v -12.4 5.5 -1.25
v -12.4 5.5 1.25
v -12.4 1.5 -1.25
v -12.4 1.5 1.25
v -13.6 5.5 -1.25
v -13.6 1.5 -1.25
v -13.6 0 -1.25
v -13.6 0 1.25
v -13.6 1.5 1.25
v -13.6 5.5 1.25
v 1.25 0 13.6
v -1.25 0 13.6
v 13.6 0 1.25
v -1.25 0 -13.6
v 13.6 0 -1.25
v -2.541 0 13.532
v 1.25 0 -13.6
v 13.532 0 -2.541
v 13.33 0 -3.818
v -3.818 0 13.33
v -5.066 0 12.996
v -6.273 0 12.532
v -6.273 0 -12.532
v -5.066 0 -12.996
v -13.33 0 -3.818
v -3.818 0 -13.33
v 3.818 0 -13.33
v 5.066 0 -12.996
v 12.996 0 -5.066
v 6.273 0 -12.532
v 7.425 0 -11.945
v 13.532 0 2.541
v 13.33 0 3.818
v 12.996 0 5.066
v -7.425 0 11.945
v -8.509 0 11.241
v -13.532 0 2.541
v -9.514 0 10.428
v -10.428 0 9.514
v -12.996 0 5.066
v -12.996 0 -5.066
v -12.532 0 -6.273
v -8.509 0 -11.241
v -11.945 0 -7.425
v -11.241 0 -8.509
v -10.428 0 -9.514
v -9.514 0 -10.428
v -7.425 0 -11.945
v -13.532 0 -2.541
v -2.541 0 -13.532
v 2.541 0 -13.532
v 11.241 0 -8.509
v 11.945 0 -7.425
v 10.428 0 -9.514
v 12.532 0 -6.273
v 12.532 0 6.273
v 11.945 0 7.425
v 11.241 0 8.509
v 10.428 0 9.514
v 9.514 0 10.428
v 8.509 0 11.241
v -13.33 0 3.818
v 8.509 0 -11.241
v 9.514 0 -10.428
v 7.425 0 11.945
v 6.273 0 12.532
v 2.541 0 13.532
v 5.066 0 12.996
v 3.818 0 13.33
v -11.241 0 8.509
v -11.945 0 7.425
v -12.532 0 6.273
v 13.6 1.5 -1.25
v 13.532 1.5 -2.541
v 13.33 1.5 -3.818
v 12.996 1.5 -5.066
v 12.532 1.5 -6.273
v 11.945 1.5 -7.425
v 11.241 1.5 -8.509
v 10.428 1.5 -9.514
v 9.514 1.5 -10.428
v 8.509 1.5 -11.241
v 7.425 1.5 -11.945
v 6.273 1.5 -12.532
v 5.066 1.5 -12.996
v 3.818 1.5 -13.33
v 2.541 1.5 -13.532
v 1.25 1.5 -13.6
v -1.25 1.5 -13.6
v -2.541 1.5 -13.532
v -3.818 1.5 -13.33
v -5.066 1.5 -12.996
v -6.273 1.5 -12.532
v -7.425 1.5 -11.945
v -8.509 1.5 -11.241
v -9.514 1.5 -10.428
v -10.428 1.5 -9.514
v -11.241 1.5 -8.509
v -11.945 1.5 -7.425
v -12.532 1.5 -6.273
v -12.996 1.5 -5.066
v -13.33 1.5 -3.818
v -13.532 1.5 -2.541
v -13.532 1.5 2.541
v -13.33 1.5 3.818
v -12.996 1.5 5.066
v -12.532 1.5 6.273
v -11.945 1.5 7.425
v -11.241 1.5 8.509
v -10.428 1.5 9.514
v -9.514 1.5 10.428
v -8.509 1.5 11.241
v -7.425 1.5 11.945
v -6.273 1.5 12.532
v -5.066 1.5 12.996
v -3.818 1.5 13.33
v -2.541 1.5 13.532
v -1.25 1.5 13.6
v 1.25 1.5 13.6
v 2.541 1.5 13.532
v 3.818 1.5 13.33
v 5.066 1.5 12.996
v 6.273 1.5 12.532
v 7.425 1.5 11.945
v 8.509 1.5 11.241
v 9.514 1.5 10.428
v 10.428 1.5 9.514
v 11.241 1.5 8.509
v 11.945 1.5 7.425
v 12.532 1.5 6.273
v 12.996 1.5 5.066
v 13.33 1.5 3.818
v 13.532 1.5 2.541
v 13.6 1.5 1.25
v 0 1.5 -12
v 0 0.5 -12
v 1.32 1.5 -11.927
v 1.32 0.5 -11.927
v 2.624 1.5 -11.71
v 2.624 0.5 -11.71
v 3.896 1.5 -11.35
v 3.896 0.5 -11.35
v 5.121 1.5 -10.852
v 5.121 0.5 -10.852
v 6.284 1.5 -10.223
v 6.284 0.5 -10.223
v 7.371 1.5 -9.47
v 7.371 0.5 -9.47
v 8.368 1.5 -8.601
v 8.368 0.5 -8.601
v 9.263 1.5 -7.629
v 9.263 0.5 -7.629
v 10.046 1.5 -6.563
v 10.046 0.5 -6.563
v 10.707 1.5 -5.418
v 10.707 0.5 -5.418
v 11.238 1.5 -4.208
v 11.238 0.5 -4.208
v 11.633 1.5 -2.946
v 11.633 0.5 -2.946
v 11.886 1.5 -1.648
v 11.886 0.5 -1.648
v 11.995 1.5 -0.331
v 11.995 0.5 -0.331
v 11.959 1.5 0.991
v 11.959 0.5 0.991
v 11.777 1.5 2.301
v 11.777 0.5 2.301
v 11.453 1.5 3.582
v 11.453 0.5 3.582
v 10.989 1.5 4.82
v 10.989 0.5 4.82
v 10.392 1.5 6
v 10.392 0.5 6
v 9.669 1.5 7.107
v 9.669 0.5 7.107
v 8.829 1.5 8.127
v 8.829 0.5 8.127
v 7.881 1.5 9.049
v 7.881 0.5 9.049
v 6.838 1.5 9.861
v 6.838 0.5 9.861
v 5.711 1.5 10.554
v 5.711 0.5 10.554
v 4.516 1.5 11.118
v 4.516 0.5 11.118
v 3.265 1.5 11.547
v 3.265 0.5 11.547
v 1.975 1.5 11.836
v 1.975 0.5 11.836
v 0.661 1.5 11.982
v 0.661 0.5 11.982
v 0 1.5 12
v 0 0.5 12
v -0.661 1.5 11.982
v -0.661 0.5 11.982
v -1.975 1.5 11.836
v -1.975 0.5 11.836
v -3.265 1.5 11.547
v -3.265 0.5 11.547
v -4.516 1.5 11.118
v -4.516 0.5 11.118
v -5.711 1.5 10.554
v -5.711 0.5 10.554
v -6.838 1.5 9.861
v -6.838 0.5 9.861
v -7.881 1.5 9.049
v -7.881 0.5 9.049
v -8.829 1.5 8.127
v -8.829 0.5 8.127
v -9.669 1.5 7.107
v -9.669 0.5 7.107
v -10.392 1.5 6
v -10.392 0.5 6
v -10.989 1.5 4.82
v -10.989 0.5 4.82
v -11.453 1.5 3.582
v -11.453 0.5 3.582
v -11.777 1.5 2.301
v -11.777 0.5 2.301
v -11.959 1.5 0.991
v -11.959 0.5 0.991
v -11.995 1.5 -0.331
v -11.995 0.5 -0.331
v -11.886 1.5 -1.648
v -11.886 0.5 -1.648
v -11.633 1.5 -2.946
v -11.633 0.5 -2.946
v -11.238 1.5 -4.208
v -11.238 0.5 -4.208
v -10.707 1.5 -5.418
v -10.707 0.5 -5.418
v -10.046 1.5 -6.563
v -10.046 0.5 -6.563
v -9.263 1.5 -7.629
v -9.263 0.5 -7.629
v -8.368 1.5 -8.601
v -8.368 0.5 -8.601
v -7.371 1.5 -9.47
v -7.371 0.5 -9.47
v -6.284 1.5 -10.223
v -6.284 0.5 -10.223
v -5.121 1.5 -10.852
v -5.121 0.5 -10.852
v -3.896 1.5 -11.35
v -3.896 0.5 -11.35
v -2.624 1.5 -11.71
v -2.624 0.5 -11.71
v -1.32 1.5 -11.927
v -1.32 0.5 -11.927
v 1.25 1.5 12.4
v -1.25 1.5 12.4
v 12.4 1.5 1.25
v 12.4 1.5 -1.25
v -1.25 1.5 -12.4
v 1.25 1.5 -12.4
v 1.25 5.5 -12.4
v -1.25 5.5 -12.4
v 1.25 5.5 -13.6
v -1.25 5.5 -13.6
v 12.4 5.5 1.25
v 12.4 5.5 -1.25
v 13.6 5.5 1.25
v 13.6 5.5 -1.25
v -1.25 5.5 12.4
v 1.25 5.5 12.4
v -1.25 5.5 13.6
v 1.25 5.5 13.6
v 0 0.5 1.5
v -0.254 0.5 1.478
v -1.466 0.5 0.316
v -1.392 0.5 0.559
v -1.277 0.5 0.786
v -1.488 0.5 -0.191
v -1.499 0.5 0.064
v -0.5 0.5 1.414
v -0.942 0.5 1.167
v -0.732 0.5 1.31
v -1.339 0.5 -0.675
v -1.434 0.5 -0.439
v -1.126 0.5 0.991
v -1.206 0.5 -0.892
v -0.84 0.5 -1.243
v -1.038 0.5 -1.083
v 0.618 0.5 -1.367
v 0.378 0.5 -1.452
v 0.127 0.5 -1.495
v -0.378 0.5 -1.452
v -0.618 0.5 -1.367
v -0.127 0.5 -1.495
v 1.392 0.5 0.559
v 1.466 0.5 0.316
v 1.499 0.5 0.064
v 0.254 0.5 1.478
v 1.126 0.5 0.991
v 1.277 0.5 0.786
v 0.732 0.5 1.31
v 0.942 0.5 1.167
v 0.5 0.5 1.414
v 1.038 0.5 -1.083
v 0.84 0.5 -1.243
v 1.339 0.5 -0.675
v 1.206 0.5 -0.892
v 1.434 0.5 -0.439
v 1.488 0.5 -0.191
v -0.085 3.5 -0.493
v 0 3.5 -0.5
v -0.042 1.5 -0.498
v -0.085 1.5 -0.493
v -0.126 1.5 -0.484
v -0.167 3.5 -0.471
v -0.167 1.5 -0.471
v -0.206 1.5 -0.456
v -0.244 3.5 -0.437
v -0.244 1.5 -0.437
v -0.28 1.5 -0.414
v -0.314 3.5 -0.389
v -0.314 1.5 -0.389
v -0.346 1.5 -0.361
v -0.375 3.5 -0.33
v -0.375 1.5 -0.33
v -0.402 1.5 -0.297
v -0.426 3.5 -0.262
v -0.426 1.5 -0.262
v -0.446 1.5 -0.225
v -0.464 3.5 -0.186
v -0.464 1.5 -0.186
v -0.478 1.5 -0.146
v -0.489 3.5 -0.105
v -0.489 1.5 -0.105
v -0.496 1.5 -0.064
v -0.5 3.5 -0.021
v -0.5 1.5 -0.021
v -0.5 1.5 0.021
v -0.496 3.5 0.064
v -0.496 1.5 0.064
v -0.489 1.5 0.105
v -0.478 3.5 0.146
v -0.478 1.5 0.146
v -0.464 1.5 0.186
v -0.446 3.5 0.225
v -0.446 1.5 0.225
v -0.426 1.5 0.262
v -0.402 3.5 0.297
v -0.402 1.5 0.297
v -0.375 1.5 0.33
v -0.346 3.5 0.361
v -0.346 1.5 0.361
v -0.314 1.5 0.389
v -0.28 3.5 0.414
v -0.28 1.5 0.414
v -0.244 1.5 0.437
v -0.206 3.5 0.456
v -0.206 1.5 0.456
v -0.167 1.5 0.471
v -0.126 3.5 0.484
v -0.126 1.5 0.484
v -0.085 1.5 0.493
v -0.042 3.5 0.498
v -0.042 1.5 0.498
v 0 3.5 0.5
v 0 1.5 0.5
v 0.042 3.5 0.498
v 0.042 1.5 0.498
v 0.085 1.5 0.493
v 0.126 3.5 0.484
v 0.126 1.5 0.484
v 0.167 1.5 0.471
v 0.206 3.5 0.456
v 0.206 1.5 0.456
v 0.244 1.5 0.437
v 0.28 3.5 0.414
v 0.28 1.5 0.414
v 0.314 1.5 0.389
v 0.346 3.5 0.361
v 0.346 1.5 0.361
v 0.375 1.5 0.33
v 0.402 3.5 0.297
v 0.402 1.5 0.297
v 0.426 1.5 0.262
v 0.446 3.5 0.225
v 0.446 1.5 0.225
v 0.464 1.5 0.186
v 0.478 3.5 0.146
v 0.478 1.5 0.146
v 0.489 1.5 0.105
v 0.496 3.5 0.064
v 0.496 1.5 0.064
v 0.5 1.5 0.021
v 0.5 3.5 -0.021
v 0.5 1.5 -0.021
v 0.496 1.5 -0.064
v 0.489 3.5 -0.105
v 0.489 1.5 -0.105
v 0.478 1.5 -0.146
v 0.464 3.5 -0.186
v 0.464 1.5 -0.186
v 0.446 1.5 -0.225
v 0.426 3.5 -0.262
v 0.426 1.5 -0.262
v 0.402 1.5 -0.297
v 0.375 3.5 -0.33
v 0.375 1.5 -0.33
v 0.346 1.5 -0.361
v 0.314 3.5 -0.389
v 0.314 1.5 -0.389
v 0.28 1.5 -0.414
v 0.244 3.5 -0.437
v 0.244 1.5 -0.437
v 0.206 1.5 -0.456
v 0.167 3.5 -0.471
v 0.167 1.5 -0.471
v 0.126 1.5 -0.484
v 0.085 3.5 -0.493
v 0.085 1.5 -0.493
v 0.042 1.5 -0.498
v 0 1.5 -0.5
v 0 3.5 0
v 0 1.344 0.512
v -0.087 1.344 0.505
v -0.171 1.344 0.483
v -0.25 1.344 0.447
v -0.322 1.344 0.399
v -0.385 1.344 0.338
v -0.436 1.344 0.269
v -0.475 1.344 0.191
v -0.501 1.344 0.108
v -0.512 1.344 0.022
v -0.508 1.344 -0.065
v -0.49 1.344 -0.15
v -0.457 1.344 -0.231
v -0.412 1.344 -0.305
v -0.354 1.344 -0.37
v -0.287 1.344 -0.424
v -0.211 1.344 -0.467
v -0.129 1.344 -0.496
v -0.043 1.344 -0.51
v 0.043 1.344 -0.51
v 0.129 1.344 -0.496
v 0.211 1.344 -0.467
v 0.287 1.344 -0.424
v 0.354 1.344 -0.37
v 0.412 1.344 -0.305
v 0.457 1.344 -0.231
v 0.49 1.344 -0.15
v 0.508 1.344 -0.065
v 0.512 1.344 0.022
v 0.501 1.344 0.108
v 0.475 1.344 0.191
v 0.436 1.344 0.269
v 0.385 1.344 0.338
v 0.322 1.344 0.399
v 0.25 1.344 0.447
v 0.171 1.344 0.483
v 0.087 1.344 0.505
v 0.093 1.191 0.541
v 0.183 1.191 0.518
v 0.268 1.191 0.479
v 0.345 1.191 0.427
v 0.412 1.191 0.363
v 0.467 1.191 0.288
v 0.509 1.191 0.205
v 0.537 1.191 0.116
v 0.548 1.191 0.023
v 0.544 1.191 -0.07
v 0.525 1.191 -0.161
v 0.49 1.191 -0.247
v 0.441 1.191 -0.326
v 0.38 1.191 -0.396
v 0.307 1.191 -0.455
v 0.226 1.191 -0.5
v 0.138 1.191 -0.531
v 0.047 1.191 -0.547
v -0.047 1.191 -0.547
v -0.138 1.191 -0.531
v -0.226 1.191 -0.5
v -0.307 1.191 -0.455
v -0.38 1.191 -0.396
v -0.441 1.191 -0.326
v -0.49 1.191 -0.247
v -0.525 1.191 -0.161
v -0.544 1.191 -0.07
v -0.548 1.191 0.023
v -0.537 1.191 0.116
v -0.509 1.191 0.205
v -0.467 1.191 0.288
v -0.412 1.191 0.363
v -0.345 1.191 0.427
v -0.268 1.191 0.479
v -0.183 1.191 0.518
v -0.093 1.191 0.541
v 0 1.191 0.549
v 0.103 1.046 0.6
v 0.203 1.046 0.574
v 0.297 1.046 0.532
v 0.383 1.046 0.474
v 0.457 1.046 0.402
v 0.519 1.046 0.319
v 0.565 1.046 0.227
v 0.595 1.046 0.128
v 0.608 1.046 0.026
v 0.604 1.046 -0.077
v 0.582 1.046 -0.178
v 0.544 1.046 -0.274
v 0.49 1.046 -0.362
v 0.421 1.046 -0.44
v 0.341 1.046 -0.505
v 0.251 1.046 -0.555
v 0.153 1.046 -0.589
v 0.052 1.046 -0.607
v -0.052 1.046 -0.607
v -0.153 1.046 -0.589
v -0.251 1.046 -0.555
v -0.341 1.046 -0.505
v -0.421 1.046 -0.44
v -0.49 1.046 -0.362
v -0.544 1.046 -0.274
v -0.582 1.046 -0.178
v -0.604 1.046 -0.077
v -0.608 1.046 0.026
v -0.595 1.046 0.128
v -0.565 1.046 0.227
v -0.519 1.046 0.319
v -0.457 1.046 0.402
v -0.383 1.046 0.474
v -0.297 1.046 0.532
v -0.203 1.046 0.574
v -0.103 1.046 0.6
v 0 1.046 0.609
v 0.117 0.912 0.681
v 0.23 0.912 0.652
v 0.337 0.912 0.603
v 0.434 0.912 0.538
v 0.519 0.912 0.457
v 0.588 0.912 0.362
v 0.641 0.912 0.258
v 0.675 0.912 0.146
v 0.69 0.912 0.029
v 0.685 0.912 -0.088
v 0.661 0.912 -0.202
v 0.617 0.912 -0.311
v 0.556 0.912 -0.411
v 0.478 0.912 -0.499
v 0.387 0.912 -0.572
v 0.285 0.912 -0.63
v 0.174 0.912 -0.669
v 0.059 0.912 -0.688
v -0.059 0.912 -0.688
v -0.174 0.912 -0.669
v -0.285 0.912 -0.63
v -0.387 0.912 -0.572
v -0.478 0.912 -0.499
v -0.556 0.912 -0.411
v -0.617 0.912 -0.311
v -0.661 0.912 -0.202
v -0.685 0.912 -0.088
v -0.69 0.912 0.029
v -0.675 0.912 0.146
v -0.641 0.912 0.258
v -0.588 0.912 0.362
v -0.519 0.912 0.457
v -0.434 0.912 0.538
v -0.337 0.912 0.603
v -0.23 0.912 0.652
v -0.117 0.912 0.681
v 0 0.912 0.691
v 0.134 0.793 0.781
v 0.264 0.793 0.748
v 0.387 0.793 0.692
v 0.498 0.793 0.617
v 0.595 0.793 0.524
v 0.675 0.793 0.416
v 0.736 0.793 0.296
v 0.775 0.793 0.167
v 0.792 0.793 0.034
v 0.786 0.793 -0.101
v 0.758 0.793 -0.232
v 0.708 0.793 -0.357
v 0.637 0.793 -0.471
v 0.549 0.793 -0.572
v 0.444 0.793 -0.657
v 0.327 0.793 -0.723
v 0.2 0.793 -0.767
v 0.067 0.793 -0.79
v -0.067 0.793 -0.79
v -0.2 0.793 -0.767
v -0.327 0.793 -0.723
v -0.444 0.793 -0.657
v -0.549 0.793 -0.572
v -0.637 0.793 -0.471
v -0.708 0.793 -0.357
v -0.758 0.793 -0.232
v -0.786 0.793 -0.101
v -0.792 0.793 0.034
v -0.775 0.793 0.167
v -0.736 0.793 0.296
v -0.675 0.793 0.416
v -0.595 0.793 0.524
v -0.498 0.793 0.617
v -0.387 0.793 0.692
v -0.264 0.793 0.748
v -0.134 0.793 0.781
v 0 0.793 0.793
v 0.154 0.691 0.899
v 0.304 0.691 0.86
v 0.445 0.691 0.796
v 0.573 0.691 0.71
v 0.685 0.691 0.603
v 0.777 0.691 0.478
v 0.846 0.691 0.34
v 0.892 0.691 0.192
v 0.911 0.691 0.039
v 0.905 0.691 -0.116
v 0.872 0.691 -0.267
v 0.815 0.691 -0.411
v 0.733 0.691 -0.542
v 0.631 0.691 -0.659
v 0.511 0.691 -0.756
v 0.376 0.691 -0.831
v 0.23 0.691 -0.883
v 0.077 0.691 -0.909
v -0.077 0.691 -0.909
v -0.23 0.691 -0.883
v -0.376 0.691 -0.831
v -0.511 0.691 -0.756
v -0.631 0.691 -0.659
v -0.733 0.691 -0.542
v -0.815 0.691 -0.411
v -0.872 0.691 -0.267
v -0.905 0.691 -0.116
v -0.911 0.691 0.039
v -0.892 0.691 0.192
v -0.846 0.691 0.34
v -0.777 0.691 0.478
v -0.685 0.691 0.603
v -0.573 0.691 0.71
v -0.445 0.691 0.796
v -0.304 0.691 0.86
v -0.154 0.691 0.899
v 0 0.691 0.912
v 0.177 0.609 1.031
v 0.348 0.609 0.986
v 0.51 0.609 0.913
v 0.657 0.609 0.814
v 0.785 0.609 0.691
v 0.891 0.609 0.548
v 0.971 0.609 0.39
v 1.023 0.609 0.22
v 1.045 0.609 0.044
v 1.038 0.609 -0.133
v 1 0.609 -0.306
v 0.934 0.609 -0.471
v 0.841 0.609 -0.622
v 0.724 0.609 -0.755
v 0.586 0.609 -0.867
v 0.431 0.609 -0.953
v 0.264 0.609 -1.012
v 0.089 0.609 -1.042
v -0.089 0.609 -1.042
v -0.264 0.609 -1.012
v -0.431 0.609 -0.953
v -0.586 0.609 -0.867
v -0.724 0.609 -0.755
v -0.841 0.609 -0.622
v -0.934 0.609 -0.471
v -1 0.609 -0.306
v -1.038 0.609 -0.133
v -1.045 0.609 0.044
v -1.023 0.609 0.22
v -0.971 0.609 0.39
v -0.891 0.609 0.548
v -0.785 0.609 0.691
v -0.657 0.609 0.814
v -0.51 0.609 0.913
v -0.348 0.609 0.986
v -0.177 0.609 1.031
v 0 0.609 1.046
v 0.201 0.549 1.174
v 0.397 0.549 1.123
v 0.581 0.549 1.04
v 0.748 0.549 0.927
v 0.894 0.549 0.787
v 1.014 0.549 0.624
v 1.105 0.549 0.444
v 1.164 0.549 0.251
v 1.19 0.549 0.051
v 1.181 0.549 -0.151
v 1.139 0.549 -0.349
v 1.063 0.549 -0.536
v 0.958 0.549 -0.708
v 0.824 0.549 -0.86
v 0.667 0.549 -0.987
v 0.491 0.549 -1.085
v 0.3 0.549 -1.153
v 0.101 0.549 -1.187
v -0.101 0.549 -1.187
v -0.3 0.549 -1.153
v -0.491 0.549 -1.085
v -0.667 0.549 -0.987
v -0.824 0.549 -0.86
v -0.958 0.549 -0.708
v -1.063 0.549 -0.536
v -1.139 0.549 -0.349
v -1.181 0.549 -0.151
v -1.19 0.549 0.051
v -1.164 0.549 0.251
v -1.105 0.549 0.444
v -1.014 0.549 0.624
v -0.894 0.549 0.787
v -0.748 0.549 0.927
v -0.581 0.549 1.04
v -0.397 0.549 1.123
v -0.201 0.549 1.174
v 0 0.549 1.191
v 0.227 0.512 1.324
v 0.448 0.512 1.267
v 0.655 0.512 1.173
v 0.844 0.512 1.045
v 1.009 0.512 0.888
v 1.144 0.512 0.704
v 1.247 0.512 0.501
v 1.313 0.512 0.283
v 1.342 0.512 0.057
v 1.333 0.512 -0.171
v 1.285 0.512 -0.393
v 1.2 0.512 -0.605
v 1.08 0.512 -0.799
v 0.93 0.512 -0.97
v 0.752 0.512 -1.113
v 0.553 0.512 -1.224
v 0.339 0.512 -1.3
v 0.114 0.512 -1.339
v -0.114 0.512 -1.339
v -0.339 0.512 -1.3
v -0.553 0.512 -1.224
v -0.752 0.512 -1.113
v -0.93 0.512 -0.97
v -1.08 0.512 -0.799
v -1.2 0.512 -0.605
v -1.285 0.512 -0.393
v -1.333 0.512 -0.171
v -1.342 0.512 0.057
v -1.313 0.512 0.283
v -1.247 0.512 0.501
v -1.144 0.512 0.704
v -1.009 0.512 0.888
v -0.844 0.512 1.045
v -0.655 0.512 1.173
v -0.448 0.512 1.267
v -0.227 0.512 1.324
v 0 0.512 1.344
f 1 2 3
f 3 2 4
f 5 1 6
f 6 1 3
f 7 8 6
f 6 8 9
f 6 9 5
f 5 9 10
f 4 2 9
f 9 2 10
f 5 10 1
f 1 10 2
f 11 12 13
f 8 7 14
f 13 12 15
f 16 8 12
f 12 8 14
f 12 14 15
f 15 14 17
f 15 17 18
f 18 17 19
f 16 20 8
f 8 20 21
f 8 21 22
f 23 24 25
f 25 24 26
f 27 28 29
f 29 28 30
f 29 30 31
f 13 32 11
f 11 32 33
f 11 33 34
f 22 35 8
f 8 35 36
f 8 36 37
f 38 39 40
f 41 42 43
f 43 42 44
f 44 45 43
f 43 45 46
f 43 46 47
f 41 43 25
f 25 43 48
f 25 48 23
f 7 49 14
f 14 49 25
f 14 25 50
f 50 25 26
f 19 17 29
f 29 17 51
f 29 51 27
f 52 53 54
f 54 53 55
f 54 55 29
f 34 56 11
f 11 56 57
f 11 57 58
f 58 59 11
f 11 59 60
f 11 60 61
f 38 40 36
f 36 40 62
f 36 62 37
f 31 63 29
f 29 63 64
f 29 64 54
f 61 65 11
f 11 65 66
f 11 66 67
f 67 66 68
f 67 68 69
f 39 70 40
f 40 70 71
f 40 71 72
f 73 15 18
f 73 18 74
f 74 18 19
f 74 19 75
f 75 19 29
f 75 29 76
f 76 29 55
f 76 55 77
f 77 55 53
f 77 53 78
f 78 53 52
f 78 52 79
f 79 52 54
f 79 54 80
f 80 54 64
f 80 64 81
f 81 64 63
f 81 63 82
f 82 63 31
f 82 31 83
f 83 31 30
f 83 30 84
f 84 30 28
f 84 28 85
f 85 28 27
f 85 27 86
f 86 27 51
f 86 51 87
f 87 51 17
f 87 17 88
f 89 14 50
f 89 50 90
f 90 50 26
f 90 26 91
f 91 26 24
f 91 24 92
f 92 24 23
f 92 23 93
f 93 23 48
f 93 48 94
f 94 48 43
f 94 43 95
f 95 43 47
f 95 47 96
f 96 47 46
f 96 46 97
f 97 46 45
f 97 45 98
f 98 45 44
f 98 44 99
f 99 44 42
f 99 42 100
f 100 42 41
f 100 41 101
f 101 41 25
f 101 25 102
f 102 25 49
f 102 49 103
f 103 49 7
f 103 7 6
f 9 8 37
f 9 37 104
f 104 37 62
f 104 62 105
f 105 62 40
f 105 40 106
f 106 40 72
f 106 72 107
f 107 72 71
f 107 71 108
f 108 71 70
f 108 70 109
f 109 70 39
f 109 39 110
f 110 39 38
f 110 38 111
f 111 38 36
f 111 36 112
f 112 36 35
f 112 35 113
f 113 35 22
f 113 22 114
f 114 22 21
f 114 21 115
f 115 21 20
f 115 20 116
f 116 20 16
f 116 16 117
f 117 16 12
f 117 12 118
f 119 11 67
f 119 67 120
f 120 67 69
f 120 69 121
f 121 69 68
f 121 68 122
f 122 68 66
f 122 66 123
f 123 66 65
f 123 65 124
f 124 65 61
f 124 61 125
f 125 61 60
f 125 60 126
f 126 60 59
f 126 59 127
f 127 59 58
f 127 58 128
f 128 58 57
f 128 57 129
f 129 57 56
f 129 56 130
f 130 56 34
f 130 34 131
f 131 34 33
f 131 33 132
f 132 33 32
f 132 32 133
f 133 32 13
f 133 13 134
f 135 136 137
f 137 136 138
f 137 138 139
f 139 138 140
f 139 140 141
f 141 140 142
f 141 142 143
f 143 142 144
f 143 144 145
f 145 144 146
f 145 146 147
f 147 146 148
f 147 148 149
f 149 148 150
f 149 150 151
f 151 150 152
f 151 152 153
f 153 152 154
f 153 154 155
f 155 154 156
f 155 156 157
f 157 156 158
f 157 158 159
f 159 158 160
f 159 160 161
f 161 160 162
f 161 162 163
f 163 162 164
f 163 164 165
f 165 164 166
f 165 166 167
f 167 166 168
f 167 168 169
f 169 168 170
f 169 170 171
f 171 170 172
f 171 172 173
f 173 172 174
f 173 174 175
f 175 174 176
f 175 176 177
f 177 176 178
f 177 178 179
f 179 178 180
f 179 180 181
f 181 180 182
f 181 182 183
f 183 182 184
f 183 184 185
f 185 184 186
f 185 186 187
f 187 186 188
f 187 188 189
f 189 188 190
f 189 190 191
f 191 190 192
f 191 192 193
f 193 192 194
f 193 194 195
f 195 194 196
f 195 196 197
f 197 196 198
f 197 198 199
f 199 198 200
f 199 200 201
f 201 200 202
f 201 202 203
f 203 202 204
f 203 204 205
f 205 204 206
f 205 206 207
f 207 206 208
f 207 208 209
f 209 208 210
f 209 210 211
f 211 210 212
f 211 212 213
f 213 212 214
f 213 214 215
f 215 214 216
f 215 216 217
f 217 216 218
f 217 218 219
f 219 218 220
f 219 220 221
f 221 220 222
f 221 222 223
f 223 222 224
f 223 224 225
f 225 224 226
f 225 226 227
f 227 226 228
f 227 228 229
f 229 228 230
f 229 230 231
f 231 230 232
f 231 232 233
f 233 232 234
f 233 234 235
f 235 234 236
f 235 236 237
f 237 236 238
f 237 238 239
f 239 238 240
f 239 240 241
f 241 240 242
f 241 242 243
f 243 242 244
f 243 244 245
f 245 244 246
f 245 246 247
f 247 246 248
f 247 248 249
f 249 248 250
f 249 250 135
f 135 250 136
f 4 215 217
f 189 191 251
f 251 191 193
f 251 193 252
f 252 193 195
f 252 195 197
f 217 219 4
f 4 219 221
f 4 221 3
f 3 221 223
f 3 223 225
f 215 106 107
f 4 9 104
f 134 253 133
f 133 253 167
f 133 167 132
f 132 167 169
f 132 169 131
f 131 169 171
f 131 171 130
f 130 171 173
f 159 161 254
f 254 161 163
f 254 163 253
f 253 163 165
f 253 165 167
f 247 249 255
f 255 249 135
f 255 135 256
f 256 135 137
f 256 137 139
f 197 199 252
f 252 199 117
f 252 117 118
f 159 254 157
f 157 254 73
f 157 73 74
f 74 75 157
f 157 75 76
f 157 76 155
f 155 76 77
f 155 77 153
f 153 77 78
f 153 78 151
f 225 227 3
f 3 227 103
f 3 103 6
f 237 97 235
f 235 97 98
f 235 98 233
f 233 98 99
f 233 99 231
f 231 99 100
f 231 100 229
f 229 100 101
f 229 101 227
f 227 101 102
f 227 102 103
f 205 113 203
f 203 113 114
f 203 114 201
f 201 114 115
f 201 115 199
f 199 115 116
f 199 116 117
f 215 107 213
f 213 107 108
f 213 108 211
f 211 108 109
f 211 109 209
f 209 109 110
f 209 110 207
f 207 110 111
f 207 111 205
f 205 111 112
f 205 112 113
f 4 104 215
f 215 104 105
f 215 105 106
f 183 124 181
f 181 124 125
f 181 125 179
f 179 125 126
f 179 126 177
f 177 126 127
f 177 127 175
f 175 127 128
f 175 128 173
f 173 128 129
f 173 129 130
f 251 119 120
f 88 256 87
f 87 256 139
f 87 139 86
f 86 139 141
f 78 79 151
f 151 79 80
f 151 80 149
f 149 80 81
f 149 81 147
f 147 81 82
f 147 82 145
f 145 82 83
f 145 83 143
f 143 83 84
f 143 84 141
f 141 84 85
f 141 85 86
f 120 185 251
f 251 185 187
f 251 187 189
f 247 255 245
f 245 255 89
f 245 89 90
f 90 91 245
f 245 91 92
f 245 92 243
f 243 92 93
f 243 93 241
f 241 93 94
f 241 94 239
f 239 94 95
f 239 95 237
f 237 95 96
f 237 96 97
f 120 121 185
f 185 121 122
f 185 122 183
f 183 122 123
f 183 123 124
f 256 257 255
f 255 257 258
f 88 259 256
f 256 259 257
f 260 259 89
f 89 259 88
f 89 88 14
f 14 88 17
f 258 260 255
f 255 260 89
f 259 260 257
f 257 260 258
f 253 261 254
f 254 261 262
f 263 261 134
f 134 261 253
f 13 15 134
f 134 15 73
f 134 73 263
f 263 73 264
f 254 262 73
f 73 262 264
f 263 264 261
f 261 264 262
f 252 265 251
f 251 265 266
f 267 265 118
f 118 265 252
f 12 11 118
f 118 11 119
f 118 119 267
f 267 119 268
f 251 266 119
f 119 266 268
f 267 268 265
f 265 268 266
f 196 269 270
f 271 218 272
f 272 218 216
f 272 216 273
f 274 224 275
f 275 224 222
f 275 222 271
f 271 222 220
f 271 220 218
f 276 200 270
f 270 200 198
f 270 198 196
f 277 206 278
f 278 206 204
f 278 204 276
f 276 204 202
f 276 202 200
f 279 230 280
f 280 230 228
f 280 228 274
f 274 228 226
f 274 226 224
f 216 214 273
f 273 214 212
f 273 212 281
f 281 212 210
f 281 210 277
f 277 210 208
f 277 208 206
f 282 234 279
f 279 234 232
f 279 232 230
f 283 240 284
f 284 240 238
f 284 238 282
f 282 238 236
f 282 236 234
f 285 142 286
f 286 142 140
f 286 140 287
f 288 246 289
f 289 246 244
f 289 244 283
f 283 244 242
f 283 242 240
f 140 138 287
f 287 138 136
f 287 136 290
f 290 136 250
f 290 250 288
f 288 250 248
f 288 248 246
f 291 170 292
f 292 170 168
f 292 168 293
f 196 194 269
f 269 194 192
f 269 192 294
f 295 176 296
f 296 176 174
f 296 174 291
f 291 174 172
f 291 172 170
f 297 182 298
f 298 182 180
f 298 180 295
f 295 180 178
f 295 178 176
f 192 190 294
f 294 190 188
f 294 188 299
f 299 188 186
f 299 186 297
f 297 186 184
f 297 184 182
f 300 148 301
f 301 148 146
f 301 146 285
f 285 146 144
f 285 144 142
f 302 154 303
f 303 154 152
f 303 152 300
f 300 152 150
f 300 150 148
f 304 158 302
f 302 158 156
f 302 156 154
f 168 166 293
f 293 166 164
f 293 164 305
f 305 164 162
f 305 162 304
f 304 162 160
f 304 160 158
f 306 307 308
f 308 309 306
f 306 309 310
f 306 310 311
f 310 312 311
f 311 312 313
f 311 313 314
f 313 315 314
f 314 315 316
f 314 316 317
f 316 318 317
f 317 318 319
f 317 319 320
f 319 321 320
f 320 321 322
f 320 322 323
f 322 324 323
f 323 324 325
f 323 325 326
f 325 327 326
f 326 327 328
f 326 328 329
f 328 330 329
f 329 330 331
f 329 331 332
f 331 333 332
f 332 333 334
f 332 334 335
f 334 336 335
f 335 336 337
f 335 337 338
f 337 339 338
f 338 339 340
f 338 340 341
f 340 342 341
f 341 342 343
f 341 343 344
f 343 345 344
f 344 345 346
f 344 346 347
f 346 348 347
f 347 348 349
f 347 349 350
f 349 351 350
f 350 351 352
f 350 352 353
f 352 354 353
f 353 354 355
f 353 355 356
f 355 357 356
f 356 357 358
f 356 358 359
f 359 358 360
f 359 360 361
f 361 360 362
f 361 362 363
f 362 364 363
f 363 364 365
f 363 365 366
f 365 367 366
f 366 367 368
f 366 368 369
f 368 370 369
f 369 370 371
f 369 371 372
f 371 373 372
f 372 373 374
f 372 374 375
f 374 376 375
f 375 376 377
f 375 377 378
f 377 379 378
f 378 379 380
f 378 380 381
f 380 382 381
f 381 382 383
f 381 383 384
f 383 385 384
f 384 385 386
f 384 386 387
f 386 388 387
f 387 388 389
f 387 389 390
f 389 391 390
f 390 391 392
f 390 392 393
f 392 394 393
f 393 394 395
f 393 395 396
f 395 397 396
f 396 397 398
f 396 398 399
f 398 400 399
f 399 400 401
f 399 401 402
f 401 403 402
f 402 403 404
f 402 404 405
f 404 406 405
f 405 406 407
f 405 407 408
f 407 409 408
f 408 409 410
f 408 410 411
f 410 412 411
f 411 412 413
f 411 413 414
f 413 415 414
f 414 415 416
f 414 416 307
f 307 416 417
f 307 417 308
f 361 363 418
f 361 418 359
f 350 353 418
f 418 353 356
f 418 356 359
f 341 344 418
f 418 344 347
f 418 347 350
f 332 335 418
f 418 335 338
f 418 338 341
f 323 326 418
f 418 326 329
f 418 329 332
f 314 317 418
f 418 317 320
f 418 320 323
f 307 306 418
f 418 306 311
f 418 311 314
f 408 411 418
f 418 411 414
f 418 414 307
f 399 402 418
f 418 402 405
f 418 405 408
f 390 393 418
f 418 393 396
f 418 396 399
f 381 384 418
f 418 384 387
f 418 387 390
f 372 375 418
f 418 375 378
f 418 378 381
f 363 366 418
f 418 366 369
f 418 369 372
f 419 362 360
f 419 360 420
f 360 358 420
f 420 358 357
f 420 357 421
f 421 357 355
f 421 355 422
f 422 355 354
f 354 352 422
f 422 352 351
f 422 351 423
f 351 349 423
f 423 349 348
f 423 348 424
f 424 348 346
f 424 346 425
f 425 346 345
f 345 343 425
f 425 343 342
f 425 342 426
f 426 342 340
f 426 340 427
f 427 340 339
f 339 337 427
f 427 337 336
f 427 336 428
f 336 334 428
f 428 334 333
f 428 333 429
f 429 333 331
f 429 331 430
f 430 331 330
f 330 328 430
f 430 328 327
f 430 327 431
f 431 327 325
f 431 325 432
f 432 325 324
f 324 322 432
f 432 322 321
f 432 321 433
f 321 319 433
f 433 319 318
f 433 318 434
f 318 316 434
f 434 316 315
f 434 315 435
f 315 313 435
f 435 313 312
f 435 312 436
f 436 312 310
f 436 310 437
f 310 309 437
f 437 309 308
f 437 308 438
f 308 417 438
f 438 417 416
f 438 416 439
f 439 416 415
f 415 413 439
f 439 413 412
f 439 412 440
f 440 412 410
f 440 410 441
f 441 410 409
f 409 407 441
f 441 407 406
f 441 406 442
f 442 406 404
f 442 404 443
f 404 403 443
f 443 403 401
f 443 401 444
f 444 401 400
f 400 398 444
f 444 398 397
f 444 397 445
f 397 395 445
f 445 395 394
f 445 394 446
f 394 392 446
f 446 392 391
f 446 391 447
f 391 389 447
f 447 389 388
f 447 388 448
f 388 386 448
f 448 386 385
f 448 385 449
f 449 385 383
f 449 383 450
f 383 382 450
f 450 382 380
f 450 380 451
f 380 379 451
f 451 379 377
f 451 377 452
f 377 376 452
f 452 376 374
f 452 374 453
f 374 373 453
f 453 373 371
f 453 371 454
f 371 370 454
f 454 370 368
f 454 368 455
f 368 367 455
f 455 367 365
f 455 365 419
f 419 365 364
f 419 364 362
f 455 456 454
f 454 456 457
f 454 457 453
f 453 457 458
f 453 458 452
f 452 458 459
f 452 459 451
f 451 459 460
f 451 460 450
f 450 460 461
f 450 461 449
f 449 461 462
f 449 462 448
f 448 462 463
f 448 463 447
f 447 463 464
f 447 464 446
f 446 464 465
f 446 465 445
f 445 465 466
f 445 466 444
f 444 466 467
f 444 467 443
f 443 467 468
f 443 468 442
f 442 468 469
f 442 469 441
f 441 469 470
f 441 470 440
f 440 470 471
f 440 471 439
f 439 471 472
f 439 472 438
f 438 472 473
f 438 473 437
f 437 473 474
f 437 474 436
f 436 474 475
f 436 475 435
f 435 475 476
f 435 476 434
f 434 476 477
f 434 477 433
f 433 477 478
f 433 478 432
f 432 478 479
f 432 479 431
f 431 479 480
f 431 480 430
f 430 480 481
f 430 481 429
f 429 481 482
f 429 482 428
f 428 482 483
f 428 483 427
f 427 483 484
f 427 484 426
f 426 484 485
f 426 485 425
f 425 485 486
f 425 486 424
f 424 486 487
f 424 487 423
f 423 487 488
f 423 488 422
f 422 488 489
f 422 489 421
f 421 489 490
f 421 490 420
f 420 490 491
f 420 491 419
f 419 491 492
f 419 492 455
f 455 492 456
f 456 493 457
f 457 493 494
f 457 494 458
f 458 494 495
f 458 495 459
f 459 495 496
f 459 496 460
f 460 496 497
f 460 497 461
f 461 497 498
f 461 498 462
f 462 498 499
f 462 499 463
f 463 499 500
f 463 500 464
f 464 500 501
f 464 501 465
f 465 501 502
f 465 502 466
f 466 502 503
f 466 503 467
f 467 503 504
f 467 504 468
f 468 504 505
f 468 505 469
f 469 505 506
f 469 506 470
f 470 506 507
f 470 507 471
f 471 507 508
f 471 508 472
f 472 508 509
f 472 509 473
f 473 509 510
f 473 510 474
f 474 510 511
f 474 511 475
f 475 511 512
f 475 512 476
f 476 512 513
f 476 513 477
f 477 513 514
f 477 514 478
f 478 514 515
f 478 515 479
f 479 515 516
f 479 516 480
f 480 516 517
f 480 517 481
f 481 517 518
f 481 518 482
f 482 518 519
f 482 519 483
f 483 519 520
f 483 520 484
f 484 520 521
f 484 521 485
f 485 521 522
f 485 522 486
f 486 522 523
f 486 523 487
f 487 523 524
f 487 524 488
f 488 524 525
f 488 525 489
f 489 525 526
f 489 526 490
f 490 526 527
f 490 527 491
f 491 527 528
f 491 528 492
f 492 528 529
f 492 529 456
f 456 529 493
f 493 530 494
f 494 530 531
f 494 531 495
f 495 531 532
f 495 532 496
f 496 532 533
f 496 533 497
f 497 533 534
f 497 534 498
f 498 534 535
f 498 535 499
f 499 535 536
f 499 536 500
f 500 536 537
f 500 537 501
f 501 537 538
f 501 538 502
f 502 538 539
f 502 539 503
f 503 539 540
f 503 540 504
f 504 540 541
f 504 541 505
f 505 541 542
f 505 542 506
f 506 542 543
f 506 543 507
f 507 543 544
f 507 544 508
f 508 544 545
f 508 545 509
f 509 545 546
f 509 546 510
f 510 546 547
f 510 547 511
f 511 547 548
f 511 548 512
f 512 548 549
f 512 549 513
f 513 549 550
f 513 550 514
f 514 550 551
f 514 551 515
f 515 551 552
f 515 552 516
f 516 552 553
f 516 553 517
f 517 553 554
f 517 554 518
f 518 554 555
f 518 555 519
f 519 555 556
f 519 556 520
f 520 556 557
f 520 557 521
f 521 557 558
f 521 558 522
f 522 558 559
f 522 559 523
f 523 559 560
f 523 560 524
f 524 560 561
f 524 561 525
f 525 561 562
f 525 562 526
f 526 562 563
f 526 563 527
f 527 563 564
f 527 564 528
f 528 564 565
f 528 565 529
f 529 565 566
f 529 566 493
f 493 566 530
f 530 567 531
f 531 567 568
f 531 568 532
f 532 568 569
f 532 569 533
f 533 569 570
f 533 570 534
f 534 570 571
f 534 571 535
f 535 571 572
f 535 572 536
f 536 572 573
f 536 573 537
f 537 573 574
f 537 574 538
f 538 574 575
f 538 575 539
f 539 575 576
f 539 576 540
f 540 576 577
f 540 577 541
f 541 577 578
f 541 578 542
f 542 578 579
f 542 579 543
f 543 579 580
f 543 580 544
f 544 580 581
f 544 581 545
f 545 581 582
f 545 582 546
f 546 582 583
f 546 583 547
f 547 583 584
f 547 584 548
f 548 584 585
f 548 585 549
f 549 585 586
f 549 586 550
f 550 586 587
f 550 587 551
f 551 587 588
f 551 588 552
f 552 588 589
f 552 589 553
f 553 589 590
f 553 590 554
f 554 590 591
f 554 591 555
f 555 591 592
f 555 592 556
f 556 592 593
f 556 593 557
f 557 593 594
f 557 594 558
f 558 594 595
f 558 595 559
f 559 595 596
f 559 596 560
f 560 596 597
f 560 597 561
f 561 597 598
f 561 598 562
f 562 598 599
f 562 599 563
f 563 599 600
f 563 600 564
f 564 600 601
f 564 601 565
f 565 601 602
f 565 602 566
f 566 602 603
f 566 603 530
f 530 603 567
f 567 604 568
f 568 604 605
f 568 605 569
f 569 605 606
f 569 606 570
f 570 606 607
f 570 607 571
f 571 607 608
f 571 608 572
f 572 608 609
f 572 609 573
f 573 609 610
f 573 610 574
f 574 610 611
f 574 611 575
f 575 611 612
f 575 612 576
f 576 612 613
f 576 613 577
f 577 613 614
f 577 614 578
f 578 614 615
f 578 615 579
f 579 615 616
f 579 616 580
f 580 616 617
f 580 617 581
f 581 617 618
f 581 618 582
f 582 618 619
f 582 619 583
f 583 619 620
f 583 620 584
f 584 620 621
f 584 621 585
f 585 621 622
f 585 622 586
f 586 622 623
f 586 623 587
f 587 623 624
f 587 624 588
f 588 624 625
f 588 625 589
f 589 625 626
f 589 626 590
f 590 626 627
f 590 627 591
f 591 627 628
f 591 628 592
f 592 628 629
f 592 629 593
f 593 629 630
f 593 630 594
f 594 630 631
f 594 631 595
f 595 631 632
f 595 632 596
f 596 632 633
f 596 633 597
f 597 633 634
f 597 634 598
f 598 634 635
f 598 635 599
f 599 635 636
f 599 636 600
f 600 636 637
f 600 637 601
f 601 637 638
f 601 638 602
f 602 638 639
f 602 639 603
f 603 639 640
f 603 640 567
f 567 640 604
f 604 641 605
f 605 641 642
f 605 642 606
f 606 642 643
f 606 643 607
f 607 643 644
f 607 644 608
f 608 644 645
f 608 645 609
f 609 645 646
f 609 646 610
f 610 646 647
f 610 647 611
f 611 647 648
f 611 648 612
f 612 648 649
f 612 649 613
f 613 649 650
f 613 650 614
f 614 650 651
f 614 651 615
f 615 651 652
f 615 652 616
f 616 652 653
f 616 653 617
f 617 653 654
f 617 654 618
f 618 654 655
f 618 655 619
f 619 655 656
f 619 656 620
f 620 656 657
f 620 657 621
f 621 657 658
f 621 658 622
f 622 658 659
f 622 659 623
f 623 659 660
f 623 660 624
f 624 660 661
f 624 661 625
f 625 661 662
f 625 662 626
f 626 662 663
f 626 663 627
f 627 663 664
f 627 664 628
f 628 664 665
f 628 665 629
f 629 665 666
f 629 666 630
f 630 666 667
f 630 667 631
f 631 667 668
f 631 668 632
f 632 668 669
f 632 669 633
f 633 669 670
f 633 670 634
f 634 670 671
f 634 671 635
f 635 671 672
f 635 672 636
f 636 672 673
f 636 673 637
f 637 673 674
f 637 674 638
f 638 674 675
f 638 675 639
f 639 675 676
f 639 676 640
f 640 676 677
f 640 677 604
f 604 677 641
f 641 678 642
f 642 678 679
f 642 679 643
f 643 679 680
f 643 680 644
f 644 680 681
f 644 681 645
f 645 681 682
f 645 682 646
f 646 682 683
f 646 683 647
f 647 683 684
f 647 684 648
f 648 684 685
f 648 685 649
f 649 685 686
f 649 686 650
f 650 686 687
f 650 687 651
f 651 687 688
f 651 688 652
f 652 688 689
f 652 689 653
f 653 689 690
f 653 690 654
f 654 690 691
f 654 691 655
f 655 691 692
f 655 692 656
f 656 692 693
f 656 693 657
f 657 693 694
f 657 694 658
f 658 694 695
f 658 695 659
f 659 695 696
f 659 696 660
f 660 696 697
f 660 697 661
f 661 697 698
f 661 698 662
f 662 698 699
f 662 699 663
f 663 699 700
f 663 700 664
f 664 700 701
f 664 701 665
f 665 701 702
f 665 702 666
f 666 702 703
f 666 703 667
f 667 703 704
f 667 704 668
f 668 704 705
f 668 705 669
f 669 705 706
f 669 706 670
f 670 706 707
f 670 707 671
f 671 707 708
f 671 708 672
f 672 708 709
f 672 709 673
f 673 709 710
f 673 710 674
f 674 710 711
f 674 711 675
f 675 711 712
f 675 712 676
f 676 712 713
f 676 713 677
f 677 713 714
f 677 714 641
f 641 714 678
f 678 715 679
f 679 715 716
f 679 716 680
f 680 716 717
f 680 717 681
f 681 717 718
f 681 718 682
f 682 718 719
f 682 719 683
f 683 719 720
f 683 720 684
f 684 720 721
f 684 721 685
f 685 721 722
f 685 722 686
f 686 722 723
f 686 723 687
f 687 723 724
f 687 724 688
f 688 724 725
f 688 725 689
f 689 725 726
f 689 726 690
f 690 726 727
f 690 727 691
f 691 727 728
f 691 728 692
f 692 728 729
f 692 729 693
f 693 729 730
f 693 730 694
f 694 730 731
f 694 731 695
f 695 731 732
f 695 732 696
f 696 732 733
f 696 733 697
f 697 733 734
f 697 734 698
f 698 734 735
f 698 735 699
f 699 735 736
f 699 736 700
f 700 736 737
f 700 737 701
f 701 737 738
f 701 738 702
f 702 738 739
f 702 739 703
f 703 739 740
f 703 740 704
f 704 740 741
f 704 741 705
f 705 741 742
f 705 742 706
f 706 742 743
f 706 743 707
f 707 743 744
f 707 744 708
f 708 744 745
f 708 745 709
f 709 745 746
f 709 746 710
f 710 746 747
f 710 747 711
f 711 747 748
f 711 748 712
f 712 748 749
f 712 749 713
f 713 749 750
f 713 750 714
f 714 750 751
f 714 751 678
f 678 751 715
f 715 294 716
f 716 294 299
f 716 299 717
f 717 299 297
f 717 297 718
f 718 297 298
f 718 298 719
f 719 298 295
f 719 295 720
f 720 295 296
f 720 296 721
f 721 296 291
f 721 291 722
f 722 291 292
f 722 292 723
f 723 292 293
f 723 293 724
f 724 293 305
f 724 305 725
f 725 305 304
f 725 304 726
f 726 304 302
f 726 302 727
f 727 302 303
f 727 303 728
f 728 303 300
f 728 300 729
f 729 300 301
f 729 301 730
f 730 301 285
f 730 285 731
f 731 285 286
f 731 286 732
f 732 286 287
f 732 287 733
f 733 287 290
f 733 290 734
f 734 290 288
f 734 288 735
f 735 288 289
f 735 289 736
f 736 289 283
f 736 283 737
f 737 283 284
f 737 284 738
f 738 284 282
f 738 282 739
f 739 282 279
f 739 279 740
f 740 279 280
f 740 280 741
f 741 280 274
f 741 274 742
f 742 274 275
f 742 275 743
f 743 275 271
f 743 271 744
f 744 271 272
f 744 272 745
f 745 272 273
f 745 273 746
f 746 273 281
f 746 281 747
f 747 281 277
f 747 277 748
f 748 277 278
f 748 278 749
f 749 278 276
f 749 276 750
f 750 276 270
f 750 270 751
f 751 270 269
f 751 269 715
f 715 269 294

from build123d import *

# Parameters (mm, degrees)
SKETCH1_W             = 1.2
SKETCH1_H             = 2.5
BOSS_EXTRUDE1_DEPTH   = 5.5
SKETCH1_W_2           = 2.5
SKETCH1_H_2           = 1.2
BOSS_EXTRUDE1_2_DEPTH = 5.5
BOSS_EXTRUDE1_3_DEPTH = 5.5
BOSS_EXTRUDE1_4_DEPTH = 5.5
SKETCH1_4_W           = 2.5
SKETCH1_4_H           = 2.5
BOSS_EXTRUDE2_DEPTH   = 0.5
BOSS_EXTRUDE3_DEPTH   = 1.5
SKETCH2_R             = 0.5
BOSS_EXTRUDE4_DEPTH   = 3
FILLET1_R             = 1


with BuildPart() as part:
    # Sketch1 → Boss-Extrude1 (new body)
    with BuildSketch(Plane(origin=(0, 0, 0), x_dir=(1, 0, 0), z_dir=(0, 1, 0))):
        with Locations((-13, 0)):
            Rectangle(SKETCH1_W, SKETCH1_H)
    extrude(amount=BOSS_EXTRUDE1_DEPTH)



with BuildPart() as body_2:
    # Sketch1 → Boss-Extrude1 2 (new body)
    with BuildSketch(Plane(origin=(0, 0, 0), x_dir=(1, 0, 0), z_dir=(0, 1, 0))):
        with Locations((0, 13)):
            Rectangle(SKETCH1_W_2, SKETCH1_H_2)
    extrude(amount=BOSS_EXTRUDE1_2_DEPTH)


with BuildPart() as body_3:
    # Sketch1 → Boss-Extrude1 3 (new body)
    with BuildSketch(Plane(origin=(0, 0, 0), x_dir=(1, 0, 0), z_dir=(0, 1, 0))):
        with Locations((13, 0)):
            Rectangle(SKETCH1_W, SKETCH1_H)
    extrude(amount=BOSS_EXTRUDE1_3_DEPTH)


with BuildPart() as body_4:
    # Sketch1 → Boss-Extrude1 4 (new body)
    with BuildSketch(Plane(origin=(0, 0, 0), x_dir=(1, 0, 0), z_dir=(0, 1, 0))):
        with Locations((0, -13)):
            Rectangle(SKETCH1_W_2, SKETCH1_H_2)
    extrude(amount=BOSS_EXTRUDE1_4_DEPTH)


with BuildPart() as body_5:
    # Sketch1<4> → Boss-Extrude2 (new body)
    with BuildSketch(Plane(origin=(0, 0, 0), x_dir=(1, 0, 0), z_dir=(0, 1, 0))):
        with BuildLine():
            ThreePointArc((-1.25, 11.934718262), (-8.485281374, 8.485281374), (-11.934718262, 1.25))
            Line((-11.934718262, 1.25), (-1.25, 1.25))
            Line((-1.25, 1.25), (-1.25, 11.934718262))
        make_face()
        with BuildLine():
            Line((1.25, 11.934718262), (1.25, 1.25))
            Line((1.25, 1.25), (11.934718262, 1.25))
            ThreePointArc((11.934718262, 1.25), (8.485281374, 8.485281374), (1.25, 11.934718262))
        make_face()
        with BuildLine():
            Line((-1.25, 11.934718262), (-1.25, 1.25))
            Line((-1.25, 1.25), (1.25, 1.25))
            Line((1.25, 1.25), (1.25, 11.934718262))
            ThreePointArc((1.25, 11.934718262), (0, 12), (-1.25, 11.934718262))
        make_face()
        with BuildLine():
            ThreePointArc((-11.934718262, 1.25), (-12, 0), (-11.934718262, -1.25))
            Line((-11.934718262, -1.25), (-1.25, -1.25))
            Line((-1.25, -1.25), (-1.25, 1.25))
            Line((-1.25, 1.25), (-11.934718262, 1.25))
        make_face()
        Rectangle(SKETCH1_4_W, SKETCH1_4_H)
        with BuildLine():
            Line((1.25, 1.25), (1.25, -1.25))
            Line((1.25, -1.25), (11.934718262, -1.25))
            ThreePointArc((11.934718262, -1.25), (11.983668452, -0.625851761), (12, 0))
            ThreePointArc((12, 0), (11.983668452, 0.625851761), (11.934718262, 1.25))
            Line((11.934718262, 1.25), (1.25, 1.25))
        make_face()
        with BuildLine():
            Line((11.934718262, -1.25), (1.25, -1.25))
            Line((1.25, -1.25), (1.25, -11.934718262))
            ThreePointArc((1.25, -11.934718262), (8.485281374, -8.485281374), (11.934718262, -1.25))
        make_face()
        with BuildLine():
            Line((-1.25, -1.25), (-11.934718262, -1.25))
            ThreePointArc((-11.934718262, -1.25), (-8.485281374, -8.485281374), (-1.25, -11.934718262))
            Line((-1.25, -11.934718262), (-1.25, -1.25))
        make_face()
        with BuildLine():
            Line((1.25, -1.25), (-1.25, -1.25))
            Line((-1.25, -1.25), (-1.25, -11.934718262))
            ThreePointArc((-1.25, -11.934718262), (0, -12), (1.25, -11.934718262))
            Line((1.25, -11.934718262), (1.25, -1.25))
        make_face()
    extrude(amount=BOSS_EXTRUDE2_DEPTH)


with BuildPart() as part_1:
    add(part.part)

    add(body_2.part)  # Boss-Extrude3 merges body 2

    add(body_3.part)  # Boss-Extrude3 merges body 3

    add(body_4.part)  # Boss-Extrude3 merges body 4

    add(body_5.part)  # Boss-Extrude3 merges body 5
    # Sketch1<5> → Boss-Extrude3 (add)
    with BuildSketch(Plane(origin=(0, 0, 0), x_dir=(1, 0, 0), z_dir=(0, 1, 0))):
        with BuildLine():
            ThreePointArc((-1.25, 13.6), (-9.982768748, 9.982768748), (-13.6, 1.25))
            Line((-13.6, 1.25), (-12.4, 1.25))
            Line((-12.4, 1.25), (-11.934718262, 1.25))
            ThreePointArc((-11.934718262, 1.25), (-8.485281374, 8.485281374), (-1.25, 11.934718262))
            Line((-1.25, 11.934718262), (-1.25, 12.4))
            Line((-1.25, 12.4), (-1.25, 13.6))
        make_face()
        with BuildLine():
            ThreePointArc((13.6, 1.25), (9.982768748, 9.982768748), (1.25, 13.6))
            Line((1.25, 13.6), (1.25, 12.4))
            Line((1.25, 12.4), (1.25, 11.934718262))
            ThreePointArc((1.25, 11.934718262), (8.485281374, 8.485281374), (11.934718262, 1.25))
            Line((11.934718262, 1.25), (12.4, 1.25))
            Line((12.4, 1.25), (13.6, 1.25))
        make_face()
        with BuildLine():
            Line((1.25, 12.4), (-1.25, 12.4))
            Line((-1.25, 12.4), (-1.25, 11.934718262))
            ThreePointArc((-1.25, 11.934718262), (0, 12), (1.25, 11.934718262))
            Line((1.25, 11.934718262), (1.25, 12.4))
        make_face()
        with BuildLine():
            Line((1.25, -12.4), (1.25, -13.6))
            ThreePointArc((1.25, -13.6), (9.982768748, -9.982768748), (13.6, -1.25))
            Line((13.6, -1.25), (12.4, -1.25))
            Line((12.4, -1.25), (11.934718262, -1.25))
            ThreePointArc((11.934718262, -1.25), (8.485281374, -8.485281374), (1.25, -11.934718262))
            Line((1.25, -11.934718262), (1.25, -12.4))
        make_face()
        with BuildLine():
            Line((11.934718262, -1.25), (12.4, -1.25))
            Line((12.4, -1.25), (12.4, 1.25))
            Line((12.4, 1.25), (11.934718262, 1.25))
            ThreePointArc((11.934718262, 1.25), (11.983668452, 0.625851761), (12, 0))
            ThreePointArc((12, 0), (11.983668452, -0.625851761), (11.934718262, -1.25))
        make_face()
        with BuildLine():
            Line((-12.4, -1.25), (-13.6, -1.25))
            ThreePointArc((-13.6, -1.25), (-9.982768748, -9.982768748), (-1.25, -13.6))
            Line((-1.25, -13.6), (-1.25, -12.4))
            Line((-1.25, -12.4), (-1.25, -11.934718262))
            ThreePointArc((-1.25, -11.934718262), (-8.485281374, -8.485281374), (-11.934718262, -1.25))
            Line((-11.934718262, -1.25), (-12.4, -1.25))
        make_face()
        with BuildLine():
            Line((-12.4, 1.25), (-12.4, -1.25))
            Line((-12.4, -1.25), (-11.934718262, -1.25))
            ThreePointArc((-11.934718262, -1.25), (-12, 0), (-11.934718262, 1.25))
            Line((-11.934718262, 1.25), (-12.4, 1.25))
        make_face()
        with BuildLine():
            Line((-1.25, -11.934718262), (-1.25, -12.4))
            Line((-1.25, -12.4), (1.25, -12.4))
            Line((1.25, -12.4), (1.25, -11.934718262))
            ThreePointArc((1.25, -11.934718262), (0, -12), (-1.25, -11.934718262))
        make_face()
    extrude(amount=BOSS_EXTRUDE3_DEPTH)

    # Sketch2 → Boss-Extrude4 (add)
    with BuildSketch(Plane(origin=(0, 0.5, 0), x_dir=(1, 0, 0), z_dir=(0, 1, 0))):
        Circle(SKETCH2_R)
    extrude(amount=BOSS_EXTRUDE4_DEPTH)

    # Fillet1
    fillet1_edges = [part_1.edges().sort_by_distance(p)[0] for p in [
        (-0.5, 0.5, 0),
    ]]
    fillet(fillet1_edges, radius=FILLET1_R)


solid = part_1.part
